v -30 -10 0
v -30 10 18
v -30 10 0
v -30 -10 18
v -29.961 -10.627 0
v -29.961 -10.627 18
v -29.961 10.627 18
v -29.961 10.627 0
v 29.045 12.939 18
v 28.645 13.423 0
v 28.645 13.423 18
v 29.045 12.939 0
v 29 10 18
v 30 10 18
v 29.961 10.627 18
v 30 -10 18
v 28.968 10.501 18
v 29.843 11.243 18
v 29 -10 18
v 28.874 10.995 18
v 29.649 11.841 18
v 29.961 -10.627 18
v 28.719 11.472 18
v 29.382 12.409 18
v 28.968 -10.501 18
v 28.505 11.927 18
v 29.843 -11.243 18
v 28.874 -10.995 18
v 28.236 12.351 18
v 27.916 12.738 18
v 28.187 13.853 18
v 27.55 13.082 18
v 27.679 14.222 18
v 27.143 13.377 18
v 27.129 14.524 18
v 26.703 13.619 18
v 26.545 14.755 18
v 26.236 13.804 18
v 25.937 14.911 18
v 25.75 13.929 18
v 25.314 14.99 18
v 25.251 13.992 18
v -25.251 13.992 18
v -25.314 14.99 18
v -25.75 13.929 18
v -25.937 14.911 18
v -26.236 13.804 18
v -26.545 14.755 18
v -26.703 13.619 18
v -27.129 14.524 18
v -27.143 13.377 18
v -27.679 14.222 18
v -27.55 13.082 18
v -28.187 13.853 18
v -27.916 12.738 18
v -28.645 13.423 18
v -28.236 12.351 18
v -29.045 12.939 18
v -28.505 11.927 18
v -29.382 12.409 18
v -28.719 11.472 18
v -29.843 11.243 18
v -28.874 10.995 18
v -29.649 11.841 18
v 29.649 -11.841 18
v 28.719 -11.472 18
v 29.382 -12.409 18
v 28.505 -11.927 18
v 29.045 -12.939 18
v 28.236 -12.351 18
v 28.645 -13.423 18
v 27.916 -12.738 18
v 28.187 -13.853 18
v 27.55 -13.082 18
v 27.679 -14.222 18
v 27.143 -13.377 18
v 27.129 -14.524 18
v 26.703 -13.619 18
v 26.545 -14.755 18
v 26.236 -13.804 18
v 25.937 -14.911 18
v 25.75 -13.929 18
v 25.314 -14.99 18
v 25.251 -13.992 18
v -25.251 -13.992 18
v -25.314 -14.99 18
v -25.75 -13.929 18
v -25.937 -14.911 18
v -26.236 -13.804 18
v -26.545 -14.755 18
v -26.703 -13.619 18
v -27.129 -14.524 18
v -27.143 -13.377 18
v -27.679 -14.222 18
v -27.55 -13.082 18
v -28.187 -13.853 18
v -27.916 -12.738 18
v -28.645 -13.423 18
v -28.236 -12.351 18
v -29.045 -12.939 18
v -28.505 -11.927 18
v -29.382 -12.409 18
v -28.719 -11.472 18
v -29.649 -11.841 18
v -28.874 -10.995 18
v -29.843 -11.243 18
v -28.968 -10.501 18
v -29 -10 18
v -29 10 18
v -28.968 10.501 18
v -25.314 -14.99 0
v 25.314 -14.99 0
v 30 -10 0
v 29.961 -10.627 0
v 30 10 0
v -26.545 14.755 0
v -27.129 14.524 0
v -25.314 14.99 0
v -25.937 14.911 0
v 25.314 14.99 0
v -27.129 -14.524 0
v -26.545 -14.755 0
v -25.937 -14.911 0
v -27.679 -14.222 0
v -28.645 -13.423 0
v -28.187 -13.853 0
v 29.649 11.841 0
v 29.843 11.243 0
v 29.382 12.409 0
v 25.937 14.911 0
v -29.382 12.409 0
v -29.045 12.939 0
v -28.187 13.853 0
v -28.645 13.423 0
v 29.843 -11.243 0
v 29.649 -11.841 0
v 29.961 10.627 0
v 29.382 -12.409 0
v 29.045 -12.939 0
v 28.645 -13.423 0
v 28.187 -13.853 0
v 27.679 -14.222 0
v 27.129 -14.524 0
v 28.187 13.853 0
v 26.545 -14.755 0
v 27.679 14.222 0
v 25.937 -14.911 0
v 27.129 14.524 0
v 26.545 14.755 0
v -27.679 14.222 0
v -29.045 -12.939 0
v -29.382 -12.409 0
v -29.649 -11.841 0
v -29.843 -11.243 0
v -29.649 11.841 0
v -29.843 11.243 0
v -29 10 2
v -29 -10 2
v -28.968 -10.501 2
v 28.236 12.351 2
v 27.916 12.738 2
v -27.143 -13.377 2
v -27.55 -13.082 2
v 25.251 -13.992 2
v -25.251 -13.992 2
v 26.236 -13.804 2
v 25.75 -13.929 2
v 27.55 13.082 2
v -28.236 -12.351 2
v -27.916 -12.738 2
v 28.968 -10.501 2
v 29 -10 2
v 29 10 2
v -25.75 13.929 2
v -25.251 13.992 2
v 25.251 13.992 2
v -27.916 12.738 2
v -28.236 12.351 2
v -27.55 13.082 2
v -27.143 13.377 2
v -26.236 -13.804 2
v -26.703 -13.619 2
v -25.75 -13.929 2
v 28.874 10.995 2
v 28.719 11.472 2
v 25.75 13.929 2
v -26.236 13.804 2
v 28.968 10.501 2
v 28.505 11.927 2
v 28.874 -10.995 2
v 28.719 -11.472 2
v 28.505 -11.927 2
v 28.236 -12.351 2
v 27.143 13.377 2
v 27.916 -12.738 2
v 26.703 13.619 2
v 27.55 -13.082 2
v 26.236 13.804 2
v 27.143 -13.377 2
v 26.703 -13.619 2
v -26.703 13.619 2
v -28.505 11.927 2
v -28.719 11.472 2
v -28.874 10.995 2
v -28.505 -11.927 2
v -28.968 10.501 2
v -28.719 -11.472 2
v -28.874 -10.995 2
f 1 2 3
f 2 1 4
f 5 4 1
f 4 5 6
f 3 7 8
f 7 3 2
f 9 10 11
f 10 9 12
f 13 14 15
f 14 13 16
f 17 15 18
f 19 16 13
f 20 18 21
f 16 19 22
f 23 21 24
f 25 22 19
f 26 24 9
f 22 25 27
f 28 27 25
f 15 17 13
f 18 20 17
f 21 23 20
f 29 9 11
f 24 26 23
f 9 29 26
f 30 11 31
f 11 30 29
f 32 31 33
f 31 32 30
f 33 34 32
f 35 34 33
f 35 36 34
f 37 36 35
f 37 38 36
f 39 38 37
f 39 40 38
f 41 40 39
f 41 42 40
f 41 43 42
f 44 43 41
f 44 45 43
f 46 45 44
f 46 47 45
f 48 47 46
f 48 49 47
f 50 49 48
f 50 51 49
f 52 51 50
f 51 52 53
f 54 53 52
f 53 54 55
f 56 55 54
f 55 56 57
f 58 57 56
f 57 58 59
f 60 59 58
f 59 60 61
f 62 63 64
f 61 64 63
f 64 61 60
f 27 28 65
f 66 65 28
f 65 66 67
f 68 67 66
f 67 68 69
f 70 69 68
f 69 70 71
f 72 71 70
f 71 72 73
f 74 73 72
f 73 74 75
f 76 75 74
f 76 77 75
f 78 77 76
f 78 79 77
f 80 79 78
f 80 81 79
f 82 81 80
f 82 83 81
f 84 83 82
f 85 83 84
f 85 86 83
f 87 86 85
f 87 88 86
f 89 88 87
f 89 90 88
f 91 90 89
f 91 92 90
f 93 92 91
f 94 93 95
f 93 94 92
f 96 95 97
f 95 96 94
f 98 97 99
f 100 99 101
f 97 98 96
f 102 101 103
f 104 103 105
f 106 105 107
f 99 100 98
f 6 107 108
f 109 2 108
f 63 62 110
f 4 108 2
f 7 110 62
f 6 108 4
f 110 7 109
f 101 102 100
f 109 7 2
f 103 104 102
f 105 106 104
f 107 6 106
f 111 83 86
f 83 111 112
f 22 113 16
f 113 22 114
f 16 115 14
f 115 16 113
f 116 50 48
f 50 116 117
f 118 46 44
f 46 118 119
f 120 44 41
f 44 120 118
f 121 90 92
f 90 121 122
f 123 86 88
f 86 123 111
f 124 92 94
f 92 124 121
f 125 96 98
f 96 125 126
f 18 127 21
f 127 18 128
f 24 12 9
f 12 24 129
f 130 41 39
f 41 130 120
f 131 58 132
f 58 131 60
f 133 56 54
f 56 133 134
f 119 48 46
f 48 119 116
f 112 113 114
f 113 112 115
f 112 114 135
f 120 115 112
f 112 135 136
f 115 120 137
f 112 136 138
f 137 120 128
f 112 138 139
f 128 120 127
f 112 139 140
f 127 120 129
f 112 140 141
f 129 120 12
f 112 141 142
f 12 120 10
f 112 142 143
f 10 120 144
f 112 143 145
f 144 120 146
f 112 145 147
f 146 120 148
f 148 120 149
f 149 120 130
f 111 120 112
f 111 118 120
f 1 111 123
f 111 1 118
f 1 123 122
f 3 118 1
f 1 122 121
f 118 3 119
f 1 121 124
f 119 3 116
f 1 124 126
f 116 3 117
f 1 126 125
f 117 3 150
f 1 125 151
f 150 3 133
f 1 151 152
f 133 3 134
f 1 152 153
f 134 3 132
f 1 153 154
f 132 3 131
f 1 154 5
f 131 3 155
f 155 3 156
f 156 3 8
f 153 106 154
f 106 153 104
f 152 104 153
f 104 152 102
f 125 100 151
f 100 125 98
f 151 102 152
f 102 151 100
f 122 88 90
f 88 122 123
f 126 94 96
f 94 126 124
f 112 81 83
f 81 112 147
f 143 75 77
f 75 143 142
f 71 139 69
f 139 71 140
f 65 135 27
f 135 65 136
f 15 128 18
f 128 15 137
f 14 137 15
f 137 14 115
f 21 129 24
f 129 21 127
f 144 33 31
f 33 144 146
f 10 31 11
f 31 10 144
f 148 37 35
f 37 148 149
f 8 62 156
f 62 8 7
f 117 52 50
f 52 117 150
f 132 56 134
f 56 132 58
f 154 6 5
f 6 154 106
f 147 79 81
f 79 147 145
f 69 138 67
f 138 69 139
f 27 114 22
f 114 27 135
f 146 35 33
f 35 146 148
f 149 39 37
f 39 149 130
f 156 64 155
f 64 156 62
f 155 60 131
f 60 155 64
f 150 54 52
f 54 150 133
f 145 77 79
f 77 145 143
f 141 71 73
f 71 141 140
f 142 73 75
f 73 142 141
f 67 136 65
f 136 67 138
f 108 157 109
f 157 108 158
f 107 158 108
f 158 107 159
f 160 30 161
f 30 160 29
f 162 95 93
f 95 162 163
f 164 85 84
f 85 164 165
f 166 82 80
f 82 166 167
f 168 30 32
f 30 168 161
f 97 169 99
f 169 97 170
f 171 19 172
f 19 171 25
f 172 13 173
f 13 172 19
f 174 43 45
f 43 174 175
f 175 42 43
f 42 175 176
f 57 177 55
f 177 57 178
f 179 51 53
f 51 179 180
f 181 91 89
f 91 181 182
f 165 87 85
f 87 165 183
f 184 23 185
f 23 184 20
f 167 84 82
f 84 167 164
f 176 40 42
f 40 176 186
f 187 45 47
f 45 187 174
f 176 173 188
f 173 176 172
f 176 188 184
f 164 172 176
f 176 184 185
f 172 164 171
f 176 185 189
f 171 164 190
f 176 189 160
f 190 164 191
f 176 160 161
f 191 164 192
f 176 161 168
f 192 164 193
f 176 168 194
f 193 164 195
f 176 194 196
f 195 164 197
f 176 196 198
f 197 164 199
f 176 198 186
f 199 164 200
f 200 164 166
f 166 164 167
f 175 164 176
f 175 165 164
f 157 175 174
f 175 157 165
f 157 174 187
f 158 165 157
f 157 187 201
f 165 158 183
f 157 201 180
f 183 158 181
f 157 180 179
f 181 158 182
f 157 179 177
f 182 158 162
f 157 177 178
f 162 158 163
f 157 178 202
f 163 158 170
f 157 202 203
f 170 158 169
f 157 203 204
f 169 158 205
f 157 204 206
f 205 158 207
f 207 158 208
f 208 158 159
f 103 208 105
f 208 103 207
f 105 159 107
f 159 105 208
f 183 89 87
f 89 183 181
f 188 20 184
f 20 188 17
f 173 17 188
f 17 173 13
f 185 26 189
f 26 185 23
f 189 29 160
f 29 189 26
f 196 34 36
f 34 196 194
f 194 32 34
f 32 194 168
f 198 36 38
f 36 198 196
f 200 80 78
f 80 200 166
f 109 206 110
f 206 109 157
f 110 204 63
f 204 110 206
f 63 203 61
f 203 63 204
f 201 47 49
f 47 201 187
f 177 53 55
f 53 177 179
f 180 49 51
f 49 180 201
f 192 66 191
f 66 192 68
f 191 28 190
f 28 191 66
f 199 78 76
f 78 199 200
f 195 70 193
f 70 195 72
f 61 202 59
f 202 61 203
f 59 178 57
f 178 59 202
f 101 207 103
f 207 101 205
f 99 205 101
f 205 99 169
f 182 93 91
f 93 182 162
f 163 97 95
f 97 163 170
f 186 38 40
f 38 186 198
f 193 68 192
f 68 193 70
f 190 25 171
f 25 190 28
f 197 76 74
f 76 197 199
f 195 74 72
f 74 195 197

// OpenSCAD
$fn = 50;


difference() {
	union() {
		hull() {
			translate(v = [-25.0000000000, 10.0000000000, 0]) {
				cylinder(h = 18, r = 5);
			}
			translate(v = [25.0000000000, 10.0000000000, 0]) {
				cylinder(h = 18, r = 5);
			}
			translate(v = [-25.0000000000, -10.0000000000, 0]) {
				cylinder(h = 18, r = 5);
			}
			translate(v = [25.0000000000, -10.0000000000, 0]) {
				cylinder(h = 18, r = 5);
			}
		}
	}
	union() {
		translate(v = [0, 0, 2]) {
			#hull() {
				translate(v = [-25.0000000000, 10.0000000000, 0]) {
					cylinder(h = 16, r = 4);
				}
				translate(v = [25.0000000000, 10.0000000000, 0]) {
					cylinder(h = 16, r = 4);
				}
				translate(v = [-25.0000000000, -10.0000000000, 0]) {
					cylinder(h = 16, r = 4);
				}
				translate(v = [25.0000000000, -10.0000000000, 0]) {
					cylinder(h = 16, r = 4);
				}
			}
		}
	}
}
